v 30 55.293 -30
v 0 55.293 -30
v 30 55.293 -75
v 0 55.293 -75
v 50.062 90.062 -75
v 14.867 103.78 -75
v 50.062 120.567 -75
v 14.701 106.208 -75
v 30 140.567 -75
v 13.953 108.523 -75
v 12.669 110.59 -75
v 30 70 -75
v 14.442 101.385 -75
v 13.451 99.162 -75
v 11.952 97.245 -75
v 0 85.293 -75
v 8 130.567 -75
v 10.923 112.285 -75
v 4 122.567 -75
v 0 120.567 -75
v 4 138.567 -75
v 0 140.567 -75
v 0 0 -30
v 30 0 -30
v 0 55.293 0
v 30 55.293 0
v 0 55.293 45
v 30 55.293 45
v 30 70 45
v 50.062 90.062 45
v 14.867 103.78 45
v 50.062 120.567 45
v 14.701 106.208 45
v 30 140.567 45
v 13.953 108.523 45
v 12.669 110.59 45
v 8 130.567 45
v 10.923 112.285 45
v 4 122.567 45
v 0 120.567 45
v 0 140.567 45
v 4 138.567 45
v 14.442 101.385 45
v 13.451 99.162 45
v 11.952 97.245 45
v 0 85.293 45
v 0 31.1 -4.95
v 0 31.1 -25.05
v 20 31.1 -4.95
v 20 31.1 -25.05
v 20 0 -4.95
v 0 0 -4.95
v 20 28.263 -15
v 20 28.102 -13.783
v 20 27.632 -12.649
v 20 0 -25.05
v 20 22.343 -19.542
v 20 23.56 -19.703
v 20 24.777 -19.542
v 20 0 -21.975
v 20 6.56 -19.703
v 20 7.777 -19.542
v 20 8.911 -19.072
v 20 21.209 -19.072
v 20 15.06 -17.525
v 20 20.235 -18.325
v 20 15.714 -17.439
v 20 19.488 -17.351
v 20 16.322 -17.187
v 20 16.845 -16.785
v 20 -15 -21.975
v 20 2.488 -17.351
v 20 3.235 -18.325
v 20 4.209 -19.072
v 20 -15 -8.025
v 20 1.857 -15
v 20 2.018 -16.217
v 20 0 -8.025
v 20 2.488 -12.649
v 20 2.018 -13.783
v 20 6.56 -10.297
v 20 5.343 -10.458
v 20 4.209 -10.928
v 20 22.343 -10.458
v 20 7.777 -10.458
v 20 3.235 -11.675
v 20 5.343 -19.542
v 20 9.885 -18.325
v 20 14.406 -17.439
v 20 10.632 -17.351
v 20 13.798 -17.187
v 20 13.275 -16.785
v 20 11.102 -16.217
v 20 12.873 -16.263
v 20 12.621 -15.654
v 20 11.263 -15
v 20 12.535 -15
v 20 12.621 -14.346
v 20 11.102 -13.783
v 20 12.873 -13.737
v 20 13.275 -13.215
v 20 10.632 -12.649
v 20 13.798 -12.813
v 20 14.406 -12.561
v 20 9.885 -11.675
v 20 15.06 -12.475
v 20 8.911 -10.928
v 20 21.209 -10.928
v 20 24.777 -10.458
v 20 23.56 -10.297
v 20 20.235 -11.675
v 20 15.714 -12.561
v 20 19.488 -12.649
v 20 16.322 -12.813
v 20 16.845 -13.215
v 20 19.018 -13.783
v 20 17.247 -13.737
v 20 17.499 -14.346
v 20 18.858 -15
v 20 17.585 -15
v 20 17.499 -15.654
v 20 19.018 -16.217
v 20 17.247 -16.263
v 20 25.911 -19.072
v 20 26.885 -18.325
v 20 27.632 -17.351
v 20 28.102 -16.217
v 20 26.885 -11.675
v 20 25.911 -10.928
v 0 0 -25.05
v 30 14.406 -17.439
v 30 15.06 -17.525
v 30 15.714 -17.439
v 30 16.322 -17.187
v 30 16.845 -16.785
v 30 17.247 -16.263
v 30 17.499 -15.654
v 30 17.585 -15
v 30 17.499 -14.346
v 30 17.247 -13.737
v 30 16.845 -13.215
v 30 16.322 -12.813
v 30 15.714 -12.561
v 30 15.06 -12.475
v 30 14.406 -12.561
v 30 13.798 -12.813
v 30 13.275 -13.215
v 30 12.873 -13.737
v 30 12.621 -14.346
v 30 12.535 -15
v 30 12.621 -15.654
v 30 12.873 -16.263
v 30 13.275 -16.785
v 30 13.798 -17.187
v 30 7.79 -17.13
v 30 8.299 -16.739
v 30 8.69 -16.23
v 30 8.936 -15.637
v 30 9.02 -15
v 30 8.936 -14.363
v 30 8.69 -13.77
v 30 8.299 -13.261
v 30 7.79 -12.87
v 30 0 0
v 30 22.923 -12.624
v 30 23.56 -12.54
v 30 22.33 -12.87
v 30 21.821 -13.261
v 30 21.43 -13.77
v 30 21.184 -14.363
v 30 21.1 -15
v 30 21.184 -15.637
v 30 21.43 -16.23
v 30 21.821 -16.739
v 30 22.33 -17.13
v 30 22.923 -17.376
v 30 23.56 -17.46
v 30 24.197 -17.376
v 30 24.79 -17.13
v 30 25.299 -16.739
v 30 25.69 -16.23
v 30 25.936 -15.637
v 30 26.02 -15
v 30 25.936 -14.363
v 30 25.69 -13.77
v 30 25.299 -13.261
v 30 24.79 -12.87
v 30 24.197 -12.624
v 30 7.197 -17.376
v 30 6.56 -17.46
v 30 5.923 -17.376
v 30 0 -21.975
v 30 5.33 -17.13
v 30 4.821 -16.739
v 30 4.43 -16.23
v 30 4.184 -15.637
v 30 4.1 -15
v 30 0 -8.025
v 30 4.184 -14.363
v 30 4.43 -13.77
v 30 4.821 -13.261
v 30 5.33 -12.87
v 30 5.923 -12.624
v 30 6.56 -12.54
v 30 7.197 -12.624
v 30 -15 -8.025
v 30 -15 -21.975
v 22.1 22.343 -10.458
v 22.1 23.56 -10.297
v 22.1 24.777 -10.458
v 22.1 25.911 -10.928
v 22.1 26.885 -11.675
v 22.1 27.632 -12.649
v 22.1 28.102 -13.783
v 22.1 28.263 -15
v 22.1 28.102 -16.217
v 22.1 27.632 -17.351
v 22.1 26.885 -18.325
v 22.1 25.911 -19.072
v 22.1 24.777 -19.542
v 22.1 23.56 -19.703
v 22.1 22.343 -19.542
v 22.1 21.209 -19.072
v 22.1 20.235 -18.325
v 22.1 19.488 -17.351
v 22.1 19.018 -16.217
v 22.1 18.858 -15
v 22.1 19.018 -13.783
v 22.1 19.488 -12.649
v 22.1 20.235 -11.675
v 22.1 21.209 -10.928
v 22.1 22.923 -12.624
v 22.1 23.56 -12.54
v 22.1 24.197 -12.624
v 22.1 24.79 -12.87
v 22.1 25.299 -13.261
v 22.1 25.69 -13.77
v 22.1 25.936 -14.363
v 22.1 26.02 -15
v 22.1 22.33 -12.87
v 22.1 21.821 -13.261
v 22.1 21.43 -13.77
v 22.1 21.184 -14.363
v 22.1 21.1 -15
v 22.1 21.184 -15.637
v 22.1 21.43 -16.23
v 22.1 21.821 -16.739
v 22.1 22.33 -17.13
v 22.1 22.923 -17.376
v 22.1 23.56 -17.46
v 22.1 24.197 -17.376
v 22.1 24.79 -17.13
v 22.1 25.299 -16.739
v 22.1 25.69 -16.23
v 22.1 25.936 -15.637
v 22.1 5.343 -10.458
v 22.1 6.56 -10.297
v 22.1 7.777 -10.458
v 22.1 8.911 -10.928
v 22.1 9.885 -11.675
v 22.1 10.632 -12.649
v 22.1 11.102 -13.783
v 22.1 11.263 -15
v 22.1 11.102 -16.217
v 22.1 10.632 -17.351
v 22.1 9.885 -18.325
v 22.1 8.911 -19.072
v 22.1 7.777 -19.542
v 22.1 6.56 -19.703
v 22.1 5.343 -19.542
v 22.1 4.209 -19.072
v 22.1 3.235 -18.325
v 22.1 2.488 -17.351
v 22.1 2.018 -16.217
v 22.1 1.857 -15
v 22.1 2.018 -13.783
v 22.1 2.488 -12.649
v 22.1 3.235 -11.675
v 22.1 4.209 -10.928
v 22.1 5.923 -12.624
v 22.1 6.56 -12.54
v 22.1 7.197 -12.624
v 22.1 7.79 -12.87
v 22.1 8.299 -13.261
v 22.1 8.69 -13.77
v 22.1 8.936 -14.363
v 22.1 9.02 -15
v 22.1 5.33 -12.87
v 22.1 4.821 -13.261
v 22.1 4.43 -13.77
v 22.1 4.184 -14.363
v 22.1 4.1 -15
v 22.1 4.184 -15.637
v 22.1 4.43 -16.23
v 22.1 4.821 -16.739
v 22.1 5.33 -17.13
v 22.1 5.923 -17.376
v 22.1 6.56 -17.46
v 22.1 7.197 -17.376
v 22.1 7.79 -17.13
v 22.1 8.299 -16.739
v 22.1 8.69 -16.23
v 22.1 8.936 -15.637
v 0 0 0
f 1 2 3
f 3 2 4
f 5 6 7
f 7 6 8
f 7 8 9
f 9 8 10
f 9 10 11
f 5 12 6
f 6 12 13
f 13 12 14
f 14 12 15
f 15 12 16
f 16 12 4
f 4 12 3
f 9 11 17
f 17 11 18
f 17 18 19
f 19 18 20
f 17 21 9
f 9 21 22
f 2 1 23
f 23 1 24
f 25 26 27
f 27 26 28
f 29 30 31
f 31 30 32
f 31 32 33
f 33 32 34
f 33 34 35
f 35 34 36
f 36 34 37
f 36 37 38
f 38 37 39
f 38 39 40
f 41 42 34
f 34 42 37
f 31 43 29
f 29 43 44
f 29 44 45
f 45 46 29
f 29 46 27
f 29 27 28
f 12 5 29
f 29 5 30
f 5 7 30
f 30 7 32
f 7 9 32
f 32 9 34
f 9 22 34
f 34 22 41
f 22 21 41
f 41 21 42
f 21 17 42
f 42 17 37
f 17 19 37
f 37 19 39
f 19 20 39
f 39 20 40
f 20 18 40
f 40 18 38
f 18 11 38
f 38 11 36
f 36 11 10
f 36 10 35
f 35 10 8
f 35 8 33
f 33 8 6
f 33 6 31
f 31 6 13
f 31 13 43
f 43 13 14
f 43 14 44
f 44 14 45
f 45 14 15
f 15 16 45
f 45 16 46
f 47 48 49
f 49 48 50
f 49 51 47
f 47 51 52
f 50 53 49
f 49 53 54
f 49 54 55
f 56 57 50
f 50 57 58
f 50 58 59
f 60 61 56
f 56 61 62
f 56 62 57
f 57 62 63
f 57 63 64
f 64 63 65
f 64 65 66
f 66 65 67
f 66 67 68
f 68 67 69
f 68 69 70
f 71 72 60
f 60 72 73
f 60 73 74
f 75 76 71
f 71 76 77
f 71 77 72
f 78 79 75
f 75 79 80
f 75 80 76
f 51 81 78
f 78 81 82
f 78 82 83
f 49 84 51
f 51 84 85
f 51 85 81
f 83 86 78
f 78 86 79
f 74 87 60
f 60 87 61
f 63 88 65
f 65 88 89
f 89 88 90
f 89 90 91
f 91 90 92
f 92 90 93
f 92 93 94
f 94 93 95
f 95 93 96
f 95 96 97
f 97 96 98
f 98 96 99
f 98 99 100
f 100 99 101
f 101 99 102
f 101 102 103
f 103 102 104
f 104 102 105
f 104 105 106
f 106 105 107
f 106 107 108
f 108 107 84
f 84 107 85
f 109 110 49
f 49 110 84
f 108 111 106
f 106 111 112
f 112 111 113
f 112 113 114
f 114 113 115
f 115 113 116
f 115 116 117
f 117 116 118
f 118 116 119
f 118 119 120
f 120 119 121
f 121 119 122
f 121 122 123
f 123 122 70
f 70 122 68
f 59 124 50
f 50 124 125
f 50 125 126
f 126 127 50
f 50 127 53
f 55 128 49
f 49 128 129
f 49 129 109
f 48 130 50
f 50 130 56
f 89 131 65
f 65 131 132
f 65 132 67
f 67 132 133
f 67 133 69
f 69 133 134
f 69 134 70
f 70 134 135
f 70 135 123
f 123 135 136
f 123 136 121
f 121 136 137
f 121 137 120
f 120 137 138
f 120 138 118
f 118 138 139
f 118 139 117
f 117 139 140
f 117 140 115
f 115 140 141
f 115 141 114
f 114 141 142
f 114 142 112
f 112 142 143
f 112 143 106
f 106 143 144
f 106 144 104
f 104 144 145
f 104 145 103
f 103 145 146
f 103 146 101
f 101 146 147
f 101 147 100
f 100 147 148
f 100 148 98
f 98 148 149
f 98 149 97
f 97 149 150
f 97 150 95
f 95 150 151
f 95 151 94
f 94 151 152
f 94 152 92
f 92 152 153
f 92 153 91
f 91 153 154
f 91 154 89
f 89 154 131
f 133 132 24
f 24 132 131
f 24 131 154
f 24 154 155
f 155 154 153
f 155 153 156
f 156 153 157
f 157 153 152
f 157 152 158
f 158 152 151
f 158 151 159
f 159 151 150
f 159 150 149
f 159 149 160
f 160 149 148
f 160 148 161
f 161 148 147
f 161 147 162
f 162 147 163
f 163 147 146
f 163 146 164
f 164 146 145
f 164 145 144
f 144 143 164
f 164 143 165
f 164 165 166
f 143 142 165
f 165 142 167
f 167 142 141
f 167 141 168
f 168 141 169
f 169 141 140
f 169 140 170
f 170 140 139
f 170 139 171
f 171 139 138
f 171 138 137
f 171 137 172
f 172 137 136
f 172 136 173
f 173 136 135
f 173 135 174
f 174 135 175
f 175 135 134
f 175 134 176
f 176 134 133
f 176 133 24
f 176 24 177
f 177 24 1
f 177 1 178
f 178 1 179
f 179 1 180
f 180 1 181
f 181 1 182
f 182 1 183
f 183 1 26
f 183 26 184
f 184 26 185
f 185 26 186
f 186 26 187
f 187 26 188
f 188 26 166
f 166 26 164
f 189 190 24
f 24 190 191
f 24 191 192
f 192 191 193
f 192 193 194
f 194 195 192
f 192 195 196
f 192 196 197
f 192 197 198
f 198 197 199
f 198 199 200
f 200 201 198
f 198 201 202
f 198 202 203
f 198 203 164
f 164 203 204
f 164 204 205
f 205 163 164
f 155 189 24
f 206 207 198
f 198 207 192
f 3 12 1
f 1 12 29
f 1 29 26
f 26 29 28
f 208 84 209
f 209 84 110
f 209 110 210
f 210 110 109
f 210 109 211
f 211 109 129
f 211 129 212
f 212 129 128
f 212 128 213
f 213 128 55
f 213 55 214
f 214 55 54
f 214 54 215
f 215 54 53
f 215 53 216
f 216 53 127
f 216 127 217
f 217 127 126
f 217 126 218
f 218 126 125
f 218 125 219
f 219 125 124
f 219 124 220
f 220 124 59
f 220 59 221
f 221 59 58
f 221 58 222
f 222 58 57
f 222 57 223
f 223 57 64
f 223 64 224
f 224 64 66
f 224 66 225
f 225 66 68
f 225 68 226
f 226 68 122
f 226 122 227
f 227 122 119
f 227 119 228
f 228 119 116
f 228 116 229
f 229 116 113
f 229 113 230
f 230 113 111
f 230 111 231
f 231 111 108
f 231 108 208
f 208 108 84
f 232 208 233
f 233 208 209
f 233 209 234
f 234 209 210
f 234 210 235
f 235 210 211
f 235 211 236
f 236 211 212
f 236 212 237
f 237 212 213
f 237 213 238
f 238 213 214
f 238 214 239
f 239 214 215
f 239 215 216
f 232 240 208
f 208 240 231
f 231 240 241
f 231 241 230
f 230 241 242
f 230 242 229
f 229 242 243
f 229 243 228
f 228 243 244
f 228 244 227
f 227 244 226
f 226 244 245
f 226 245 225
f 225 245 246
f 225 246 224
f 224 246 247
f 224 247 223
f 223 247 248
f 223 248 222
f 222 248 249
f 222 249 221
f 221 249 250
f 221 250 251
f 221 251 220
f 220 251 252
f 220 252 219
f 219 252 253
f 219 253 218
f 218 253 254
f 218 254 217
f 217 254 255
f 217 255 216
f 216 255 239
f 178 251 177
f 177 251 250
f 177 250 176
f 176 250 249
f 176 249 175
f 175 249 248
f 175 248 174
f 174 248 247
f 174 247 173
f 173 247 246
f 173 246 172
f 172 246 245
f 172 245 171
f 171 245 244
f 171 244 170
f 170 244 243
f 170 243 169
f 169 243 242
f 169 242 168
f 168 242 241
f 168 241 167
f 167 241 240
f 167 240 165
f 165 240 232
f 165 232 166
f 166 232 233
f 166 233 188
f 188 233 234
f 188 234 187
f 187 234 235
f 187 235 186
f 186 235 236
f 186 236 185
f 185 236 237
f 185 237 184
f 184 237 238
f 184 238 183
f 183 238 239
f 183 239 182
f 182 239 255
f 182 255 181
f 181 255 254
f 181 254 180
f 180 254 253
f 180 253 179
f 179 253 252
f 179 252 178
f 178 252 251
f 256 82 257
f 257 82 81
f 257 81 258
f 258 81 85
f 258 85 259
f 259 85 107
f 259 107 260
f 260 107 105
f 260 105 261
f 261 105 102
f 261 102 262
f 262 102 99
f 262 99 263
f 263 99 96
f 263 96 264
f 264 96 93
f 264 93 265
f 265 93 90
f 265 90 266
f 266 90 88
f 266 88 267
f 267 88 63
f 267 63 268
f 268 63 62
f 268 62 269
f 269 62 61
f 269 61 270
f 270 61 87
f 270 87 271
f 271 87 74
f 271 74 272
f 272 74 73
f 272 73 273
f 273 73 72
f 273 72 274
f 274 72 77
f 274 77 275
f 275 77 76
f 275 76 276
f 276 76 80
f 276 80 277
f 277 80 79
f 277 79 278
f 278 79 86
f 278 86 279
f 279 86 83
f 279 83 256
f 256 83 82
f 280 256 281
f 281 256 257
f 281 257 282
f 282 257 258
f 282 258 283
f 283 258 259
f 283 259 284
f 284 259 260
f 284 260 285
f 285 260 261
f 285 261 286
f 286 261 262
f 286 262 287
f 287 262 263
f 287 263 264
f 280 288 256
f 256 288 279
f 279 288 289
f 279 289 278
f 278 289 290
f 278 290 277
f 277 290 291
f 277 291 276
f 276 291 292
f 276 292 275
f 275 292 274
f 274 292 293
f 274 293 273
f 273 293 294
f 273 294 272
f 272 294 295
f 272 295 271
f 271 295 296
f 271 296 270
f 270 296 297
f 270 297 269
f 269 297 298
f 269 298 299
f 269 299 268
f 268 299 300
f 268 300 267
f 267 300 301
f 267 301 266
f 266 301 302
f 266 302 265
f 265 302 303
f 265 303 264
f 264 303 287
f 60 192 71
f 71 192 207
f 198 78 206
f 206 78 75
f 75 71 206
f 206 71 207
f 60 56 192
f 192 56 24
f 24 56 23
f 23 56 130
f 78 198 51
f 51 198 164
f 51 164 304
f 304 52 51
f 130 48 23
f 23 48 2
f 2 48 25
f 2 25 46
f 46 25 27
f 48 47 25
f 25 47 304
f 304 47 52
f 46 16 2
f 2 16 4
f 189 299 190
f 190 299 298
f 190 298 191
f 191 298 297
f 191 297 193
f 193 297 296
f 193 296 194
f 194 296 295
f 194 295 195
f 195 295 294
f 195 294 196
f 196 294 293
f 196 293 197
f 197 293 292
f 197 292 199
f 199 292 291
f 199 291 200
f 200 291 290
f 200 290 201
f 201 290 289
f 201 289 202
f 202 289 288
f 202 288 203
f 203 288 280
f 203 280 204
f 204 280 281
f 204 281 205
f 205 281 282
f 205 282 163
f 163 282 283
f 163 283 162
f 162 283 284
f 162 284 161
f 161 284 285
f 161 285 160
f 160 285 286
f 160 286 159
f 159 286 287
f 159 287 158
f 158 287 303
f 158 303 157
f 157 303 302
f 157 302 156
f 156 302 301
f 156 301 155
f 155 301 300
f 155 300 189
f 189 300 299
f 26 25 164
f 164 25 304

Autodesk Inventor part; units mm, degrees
ref_plane "YZ Plane" through (0, 0, 0) normal (1, 0, 0) x (0, 1, 0)
ref_plane "XZ Plane" through (0, 0, 0) normal (0, 1, 0) x (-1, 0, 0)
sketch "Sketch1" plane through (0, 0, 0) normal (0, 0, 1) x (1, 0, 0)
  line L0 (0, 0) -> (25, 0)
  line L1 (25, 0) -> (25, 40)
  line L2 (25, 40) -> (0, 40)
  line L3 (0, 40) -> (0, 0)
  dimension "d1" = 25
  dimension "d2" = 40
  dimension "d3" = 25
extrude "Extrusion1" add sketch "Sketch1" against normal blind 30
sketch "Sketch2" plane through (25, 0, 0) normal (1, 0, 0) x (0, 0, -1)
  line L0 (0, 0) -> (30, 0) projected
  circle A0 centre (15, 6.56) radius 2.46
extrude "Extrusion2" cut sketch "Sketch2" against normal blind 30
sketch "Sketch3" plane through (0, 0, 0) normal (-1, 0, 0) x (0, 0, 1)
  line L0 (0, 0) -> (-30, 0) projected
  line L1 (-25.05, 0) -> (-4.95, 0)
  line L2 (-4.95, 0) -> (-4.95, 33.12)
  line L3 (-4.95, 33.12) -> (-25.05, 33.12)
  line L4 (-25.05, 33.12) -> (-25.05, 0)
  dimension "d11" = 20.1
extrude "Extrusion3" cut sketch "Sketch3" against normal blind 20
sketch "Sketch4" plane through (0, 0, 0) normal (0, -1, 0) x (1, 0, 0)
  line L0 (20, -4.95) -> (20, -25.05) projected
  line L1 (20, -15) -> (25, -15)
  line L2 (25, 0) -> (25, -30) projected
  line L3 (20, -8.025) -> (25, -8.025)
  line L4 (25, -8.025) -> (25, -21.975)
  line L5 (25, -21.975) -> (20, -21.975)
  line L6 (20, -21.975) -> (20, -8.025)
  line L7 (20, -8.025) -> (25, -21.975) construction
  line L8 (25, -8.025) -> (20, -21.975) construction
  line L9 (25, -12.54) -> (25, -17.46) projected
  point P0 (0, 0)
  point P1 (22.5, -15)
  dimension "d14" = 13.95
extrude "Extrusion4" add sketch "Sketch4" along normal blind 15
sketch "Sketch5" plane through (20, 0, 0) normal (-1, 0, 0) x (0, 0, 1)
  circle A0 centre (-15, 6.56) radius 2.46 projected
  circle A1 centre (-15, 6.56) radius 4.7025
  circle A2 centre (-15, 6.56) radius 2.46 projected
  circle A3 centre (-15, 6.56) radius 2.46
  point P0 (0, 0)
  dimension "d17" = 9.405
extrude "Extrusion5" cut sketch "Sketch5" against normal blind 2.1
sketch "Sketch6" plane through (25, 0, 0) normal (1, 0, 0) x (0, 0, -1)
  circle A0 centre (15, 6.56) radius 4.7025 projected
  line L0 (15, 6.56) -> (15, 23.56)
  circle A1 centre (15, 23.56) radius 2.46
  point P0 (0, 0)
  dimension "d20" = 17
  dimension "d21" = 4.92
extrude "Extrusion6" cut sketch "Sketch6" against normal blind 10 contours A1
sketch "Sketch7" plane through (20, 0, 0) normal (-1, 0, 0) x (0, 0, 1)
  circle A0 centre (-15, 23.56) radius 2.46 projected
  circle A1 centre (-15, 23.56) radius 4.7025
  point P0 (0, 0)
  dimension "d24" = 9.405
extrude "Extrusion7" cut sketch "Sketch7" against normal blind 2.1
sketch "Sketch9" plane through (25, 0, 0) normal (1, 0, 0) x (0, 0, -1)
  circle A0 centre (15, 6.56) radius 2.46 projected
  circle A1 centre (15, 6.56) radius 2.46
  circle A2 centre (15, 23.56) radius 2.46 projected
  circle A3 centre (15, 23.56) radius 2.46
  line L0 (30, 40) -> (30, 0) projected
  line L1 (30, 0) -> (30, 40)
  line L2 (30, 40) -> (0, 40)
  line L3 (0, 40) -> (0, 0)
  line L4 (0, 0) -> (8.025, 0) projected
  line L5 (21.975, 0) -> (21.975, -15)
  line L6 (21.975, -15) -> (8.025, -15)
  line L7 (8.025, -15) -> (8.025, 0)
  line L8 (0, 0) -> (8.025, 0)
  line L9 (21.975, 0) -> (30, 0)
extrude "Extrusion8" add sketch "Sketch9" along normal blind 5
sketch "Sketch10" plane through (0, 40, 0) normal (0, 1, 0) x (1, 0, 0)
  line L0 (0, 30) -> (30, 30) projected
  line L1 (30, 0) -> (0, 0) projected
  line L2 (0, 30) -> (30, 30)
  line L3 (30, 30) -> (30, 0)
  line L4 (30, 0) -> (0, 0)
  line L5 (0, 0) -> (0, 30)
extrude "Extrusion9" add sketch "Sketch10" along normal blind 30
sketch "Sketch12" plane through (30, 0, 0) normal (1, 0, 0) x (0, 0, -1)
  circle A0 centre (15, 6.56) radius 2.46 projected
  line L0 (15, 6.56) -> (15, 15.06)
  circle A1 centre (15, 15.06) radius 2.525
  point P0 (0, 0)
  dimension "d31" = 8.5
  dimension "d33" = 5.05
extrude "Extrusion10" cut sketch "Sketch12" against normal blind 30 contours A1
sketch "Sketch15" plane through (0, 0, -25.05) normal (-1, 0, 0) x (0, 0, 1)
  line L0 (0, 33.12) -> (20.1, 33.12) projected
  line L1 (20.1, 33.12) -> (20.1, 0) projected
  line L2 (0, 33.12) -> (20.1, 33.12)
  line L3 (20.1, 33.12) -> (20.1, 31.1)
  line L4 (20.1, 31.1) -> (0, 31.1)
  line L5 (0, 31.1) -> (0, 33.12)
  point P0 (25.05, 0)
  dimension "d57" = 2.02
extrude "Extrusion13" add sketch "Sketch15" against normal blind 20
sketch "Sketch17" plane through (0, 0, 0) normal (0, 0, 1) x (1, 0, 0)
  line L0 (0, 70) -> (30, 70) projected
  line L1 (30, 70) -> (50.0622, 90.0622)
  line L2 (30, 70) -> (80, 70) construction
  line L3 (11.9522, 97.2454) -> (0, 85.2932)
  line L4 (0, 70) -> (0, 85.2932)
  line L5 (0, 70) -> (0, 0) projected
  line L6 (0, 70) -> (30, 70)
  line L7 (10.923, 112.2849) -> (0, 120.567)
  line L8 (50.0622, 105.3553) -> (50.0622, 120.567)
  line L9 (50.0622, 105.3553) -> (50.0622, 90.0622)
  arc A0 (11.9522, 97.2454) -> (10.923, 112.2849) centre (4.8811, 104.3165) ccw
  line L10 (4, 138.567) -> (0, 140.567)
  line L11 (4, 122.567) -> (0, 120.567)
  line L12 (4, 122.567) -> (8, 130.567)
  line L13 (4, 138.567) -> (8, 130.567)
  line L14 (0, 140.567) -> (30, 140.567)
  line L15 (30, 140.567) -> (50.0622, 120.567)
  dimension "d61" = 45
  dimension "d62" = 32.0271
  dimension "d72" = 10
extrude "Extrusion14" add sketch "Sketch17" against normal blind 30
sketch "Sketch21" plane through (0, 0, 0) normal (0, 0, 1) x (1, 0, 0)
  line L0 (50.0622, 90.0622) -> (30, 70) projected
  line L1 (30, 70) -> (50.0622, 90.0622)
  line L2 (50.0622, 90.0622) -> (50.0622, 120.567) projected
  line L3 (50.0622, 90.0622) -> (50.0622, 120.567)
  line L4 (0, 140.567) -> (30, 140.567) projected
  line L5 (50.0622, 120.567) -> (30, 140.567)
  line L6 (30, 140.567) -> (0, 140.567)
  line L7 (4, 138.567) -> (0, 140.567) projected
  line L8 (0, 140.567) -> (4, 138.567)
  line L9 (8, 130.567) -> (4, 138.567) projected
  line L10 (4, 138.567) -> (8, 130.567)
  line L11 (4, 122.567) -> (8, 130.567) projected
  line L12 (8, 130.567) -> (4, 122.567)
  line L13 (0, 120.567) -> (4, 122.567) projected
  line L14 (4, 122.567) -> (0, 120.567)
  line L15 (10.923, 112.2849) -> (0, 120.567) projected
  line L16 (0, 120.567) -> (10.923, 112.2849)
  line L17 (0, 85.2932) -> (11.9522, 97.2454) projected
  line L18 (11.9522, 97.2454) -> (0, 85.2932)
  line L19 (0, 85.2932) -> (0, 55.2932)
  line L20 (0, 55.2932) -> (30, 55.2932)
  line L21 (30, 55.2932) -> (30, 70)
  arc A0 (11.9522, 97.2454) -> (10.923, 112.2849) centre (4.8811, 104.3165) ccw
  dimension "d79" = 30
  dimension "d81" = 30
extrude "Extrusion15" add sketch "Sketch21" along normal blind 45
ref_plane "Work Plane1" through (0, 0, -15) normal (0, 0, 1) x (1, 0, 0)
mirror "Mirror1" about plane through (0, 0, -15) normal (0, 0, 1) of "Extrusion15"
properties part number "rec_c_16mm_x_120mm"
